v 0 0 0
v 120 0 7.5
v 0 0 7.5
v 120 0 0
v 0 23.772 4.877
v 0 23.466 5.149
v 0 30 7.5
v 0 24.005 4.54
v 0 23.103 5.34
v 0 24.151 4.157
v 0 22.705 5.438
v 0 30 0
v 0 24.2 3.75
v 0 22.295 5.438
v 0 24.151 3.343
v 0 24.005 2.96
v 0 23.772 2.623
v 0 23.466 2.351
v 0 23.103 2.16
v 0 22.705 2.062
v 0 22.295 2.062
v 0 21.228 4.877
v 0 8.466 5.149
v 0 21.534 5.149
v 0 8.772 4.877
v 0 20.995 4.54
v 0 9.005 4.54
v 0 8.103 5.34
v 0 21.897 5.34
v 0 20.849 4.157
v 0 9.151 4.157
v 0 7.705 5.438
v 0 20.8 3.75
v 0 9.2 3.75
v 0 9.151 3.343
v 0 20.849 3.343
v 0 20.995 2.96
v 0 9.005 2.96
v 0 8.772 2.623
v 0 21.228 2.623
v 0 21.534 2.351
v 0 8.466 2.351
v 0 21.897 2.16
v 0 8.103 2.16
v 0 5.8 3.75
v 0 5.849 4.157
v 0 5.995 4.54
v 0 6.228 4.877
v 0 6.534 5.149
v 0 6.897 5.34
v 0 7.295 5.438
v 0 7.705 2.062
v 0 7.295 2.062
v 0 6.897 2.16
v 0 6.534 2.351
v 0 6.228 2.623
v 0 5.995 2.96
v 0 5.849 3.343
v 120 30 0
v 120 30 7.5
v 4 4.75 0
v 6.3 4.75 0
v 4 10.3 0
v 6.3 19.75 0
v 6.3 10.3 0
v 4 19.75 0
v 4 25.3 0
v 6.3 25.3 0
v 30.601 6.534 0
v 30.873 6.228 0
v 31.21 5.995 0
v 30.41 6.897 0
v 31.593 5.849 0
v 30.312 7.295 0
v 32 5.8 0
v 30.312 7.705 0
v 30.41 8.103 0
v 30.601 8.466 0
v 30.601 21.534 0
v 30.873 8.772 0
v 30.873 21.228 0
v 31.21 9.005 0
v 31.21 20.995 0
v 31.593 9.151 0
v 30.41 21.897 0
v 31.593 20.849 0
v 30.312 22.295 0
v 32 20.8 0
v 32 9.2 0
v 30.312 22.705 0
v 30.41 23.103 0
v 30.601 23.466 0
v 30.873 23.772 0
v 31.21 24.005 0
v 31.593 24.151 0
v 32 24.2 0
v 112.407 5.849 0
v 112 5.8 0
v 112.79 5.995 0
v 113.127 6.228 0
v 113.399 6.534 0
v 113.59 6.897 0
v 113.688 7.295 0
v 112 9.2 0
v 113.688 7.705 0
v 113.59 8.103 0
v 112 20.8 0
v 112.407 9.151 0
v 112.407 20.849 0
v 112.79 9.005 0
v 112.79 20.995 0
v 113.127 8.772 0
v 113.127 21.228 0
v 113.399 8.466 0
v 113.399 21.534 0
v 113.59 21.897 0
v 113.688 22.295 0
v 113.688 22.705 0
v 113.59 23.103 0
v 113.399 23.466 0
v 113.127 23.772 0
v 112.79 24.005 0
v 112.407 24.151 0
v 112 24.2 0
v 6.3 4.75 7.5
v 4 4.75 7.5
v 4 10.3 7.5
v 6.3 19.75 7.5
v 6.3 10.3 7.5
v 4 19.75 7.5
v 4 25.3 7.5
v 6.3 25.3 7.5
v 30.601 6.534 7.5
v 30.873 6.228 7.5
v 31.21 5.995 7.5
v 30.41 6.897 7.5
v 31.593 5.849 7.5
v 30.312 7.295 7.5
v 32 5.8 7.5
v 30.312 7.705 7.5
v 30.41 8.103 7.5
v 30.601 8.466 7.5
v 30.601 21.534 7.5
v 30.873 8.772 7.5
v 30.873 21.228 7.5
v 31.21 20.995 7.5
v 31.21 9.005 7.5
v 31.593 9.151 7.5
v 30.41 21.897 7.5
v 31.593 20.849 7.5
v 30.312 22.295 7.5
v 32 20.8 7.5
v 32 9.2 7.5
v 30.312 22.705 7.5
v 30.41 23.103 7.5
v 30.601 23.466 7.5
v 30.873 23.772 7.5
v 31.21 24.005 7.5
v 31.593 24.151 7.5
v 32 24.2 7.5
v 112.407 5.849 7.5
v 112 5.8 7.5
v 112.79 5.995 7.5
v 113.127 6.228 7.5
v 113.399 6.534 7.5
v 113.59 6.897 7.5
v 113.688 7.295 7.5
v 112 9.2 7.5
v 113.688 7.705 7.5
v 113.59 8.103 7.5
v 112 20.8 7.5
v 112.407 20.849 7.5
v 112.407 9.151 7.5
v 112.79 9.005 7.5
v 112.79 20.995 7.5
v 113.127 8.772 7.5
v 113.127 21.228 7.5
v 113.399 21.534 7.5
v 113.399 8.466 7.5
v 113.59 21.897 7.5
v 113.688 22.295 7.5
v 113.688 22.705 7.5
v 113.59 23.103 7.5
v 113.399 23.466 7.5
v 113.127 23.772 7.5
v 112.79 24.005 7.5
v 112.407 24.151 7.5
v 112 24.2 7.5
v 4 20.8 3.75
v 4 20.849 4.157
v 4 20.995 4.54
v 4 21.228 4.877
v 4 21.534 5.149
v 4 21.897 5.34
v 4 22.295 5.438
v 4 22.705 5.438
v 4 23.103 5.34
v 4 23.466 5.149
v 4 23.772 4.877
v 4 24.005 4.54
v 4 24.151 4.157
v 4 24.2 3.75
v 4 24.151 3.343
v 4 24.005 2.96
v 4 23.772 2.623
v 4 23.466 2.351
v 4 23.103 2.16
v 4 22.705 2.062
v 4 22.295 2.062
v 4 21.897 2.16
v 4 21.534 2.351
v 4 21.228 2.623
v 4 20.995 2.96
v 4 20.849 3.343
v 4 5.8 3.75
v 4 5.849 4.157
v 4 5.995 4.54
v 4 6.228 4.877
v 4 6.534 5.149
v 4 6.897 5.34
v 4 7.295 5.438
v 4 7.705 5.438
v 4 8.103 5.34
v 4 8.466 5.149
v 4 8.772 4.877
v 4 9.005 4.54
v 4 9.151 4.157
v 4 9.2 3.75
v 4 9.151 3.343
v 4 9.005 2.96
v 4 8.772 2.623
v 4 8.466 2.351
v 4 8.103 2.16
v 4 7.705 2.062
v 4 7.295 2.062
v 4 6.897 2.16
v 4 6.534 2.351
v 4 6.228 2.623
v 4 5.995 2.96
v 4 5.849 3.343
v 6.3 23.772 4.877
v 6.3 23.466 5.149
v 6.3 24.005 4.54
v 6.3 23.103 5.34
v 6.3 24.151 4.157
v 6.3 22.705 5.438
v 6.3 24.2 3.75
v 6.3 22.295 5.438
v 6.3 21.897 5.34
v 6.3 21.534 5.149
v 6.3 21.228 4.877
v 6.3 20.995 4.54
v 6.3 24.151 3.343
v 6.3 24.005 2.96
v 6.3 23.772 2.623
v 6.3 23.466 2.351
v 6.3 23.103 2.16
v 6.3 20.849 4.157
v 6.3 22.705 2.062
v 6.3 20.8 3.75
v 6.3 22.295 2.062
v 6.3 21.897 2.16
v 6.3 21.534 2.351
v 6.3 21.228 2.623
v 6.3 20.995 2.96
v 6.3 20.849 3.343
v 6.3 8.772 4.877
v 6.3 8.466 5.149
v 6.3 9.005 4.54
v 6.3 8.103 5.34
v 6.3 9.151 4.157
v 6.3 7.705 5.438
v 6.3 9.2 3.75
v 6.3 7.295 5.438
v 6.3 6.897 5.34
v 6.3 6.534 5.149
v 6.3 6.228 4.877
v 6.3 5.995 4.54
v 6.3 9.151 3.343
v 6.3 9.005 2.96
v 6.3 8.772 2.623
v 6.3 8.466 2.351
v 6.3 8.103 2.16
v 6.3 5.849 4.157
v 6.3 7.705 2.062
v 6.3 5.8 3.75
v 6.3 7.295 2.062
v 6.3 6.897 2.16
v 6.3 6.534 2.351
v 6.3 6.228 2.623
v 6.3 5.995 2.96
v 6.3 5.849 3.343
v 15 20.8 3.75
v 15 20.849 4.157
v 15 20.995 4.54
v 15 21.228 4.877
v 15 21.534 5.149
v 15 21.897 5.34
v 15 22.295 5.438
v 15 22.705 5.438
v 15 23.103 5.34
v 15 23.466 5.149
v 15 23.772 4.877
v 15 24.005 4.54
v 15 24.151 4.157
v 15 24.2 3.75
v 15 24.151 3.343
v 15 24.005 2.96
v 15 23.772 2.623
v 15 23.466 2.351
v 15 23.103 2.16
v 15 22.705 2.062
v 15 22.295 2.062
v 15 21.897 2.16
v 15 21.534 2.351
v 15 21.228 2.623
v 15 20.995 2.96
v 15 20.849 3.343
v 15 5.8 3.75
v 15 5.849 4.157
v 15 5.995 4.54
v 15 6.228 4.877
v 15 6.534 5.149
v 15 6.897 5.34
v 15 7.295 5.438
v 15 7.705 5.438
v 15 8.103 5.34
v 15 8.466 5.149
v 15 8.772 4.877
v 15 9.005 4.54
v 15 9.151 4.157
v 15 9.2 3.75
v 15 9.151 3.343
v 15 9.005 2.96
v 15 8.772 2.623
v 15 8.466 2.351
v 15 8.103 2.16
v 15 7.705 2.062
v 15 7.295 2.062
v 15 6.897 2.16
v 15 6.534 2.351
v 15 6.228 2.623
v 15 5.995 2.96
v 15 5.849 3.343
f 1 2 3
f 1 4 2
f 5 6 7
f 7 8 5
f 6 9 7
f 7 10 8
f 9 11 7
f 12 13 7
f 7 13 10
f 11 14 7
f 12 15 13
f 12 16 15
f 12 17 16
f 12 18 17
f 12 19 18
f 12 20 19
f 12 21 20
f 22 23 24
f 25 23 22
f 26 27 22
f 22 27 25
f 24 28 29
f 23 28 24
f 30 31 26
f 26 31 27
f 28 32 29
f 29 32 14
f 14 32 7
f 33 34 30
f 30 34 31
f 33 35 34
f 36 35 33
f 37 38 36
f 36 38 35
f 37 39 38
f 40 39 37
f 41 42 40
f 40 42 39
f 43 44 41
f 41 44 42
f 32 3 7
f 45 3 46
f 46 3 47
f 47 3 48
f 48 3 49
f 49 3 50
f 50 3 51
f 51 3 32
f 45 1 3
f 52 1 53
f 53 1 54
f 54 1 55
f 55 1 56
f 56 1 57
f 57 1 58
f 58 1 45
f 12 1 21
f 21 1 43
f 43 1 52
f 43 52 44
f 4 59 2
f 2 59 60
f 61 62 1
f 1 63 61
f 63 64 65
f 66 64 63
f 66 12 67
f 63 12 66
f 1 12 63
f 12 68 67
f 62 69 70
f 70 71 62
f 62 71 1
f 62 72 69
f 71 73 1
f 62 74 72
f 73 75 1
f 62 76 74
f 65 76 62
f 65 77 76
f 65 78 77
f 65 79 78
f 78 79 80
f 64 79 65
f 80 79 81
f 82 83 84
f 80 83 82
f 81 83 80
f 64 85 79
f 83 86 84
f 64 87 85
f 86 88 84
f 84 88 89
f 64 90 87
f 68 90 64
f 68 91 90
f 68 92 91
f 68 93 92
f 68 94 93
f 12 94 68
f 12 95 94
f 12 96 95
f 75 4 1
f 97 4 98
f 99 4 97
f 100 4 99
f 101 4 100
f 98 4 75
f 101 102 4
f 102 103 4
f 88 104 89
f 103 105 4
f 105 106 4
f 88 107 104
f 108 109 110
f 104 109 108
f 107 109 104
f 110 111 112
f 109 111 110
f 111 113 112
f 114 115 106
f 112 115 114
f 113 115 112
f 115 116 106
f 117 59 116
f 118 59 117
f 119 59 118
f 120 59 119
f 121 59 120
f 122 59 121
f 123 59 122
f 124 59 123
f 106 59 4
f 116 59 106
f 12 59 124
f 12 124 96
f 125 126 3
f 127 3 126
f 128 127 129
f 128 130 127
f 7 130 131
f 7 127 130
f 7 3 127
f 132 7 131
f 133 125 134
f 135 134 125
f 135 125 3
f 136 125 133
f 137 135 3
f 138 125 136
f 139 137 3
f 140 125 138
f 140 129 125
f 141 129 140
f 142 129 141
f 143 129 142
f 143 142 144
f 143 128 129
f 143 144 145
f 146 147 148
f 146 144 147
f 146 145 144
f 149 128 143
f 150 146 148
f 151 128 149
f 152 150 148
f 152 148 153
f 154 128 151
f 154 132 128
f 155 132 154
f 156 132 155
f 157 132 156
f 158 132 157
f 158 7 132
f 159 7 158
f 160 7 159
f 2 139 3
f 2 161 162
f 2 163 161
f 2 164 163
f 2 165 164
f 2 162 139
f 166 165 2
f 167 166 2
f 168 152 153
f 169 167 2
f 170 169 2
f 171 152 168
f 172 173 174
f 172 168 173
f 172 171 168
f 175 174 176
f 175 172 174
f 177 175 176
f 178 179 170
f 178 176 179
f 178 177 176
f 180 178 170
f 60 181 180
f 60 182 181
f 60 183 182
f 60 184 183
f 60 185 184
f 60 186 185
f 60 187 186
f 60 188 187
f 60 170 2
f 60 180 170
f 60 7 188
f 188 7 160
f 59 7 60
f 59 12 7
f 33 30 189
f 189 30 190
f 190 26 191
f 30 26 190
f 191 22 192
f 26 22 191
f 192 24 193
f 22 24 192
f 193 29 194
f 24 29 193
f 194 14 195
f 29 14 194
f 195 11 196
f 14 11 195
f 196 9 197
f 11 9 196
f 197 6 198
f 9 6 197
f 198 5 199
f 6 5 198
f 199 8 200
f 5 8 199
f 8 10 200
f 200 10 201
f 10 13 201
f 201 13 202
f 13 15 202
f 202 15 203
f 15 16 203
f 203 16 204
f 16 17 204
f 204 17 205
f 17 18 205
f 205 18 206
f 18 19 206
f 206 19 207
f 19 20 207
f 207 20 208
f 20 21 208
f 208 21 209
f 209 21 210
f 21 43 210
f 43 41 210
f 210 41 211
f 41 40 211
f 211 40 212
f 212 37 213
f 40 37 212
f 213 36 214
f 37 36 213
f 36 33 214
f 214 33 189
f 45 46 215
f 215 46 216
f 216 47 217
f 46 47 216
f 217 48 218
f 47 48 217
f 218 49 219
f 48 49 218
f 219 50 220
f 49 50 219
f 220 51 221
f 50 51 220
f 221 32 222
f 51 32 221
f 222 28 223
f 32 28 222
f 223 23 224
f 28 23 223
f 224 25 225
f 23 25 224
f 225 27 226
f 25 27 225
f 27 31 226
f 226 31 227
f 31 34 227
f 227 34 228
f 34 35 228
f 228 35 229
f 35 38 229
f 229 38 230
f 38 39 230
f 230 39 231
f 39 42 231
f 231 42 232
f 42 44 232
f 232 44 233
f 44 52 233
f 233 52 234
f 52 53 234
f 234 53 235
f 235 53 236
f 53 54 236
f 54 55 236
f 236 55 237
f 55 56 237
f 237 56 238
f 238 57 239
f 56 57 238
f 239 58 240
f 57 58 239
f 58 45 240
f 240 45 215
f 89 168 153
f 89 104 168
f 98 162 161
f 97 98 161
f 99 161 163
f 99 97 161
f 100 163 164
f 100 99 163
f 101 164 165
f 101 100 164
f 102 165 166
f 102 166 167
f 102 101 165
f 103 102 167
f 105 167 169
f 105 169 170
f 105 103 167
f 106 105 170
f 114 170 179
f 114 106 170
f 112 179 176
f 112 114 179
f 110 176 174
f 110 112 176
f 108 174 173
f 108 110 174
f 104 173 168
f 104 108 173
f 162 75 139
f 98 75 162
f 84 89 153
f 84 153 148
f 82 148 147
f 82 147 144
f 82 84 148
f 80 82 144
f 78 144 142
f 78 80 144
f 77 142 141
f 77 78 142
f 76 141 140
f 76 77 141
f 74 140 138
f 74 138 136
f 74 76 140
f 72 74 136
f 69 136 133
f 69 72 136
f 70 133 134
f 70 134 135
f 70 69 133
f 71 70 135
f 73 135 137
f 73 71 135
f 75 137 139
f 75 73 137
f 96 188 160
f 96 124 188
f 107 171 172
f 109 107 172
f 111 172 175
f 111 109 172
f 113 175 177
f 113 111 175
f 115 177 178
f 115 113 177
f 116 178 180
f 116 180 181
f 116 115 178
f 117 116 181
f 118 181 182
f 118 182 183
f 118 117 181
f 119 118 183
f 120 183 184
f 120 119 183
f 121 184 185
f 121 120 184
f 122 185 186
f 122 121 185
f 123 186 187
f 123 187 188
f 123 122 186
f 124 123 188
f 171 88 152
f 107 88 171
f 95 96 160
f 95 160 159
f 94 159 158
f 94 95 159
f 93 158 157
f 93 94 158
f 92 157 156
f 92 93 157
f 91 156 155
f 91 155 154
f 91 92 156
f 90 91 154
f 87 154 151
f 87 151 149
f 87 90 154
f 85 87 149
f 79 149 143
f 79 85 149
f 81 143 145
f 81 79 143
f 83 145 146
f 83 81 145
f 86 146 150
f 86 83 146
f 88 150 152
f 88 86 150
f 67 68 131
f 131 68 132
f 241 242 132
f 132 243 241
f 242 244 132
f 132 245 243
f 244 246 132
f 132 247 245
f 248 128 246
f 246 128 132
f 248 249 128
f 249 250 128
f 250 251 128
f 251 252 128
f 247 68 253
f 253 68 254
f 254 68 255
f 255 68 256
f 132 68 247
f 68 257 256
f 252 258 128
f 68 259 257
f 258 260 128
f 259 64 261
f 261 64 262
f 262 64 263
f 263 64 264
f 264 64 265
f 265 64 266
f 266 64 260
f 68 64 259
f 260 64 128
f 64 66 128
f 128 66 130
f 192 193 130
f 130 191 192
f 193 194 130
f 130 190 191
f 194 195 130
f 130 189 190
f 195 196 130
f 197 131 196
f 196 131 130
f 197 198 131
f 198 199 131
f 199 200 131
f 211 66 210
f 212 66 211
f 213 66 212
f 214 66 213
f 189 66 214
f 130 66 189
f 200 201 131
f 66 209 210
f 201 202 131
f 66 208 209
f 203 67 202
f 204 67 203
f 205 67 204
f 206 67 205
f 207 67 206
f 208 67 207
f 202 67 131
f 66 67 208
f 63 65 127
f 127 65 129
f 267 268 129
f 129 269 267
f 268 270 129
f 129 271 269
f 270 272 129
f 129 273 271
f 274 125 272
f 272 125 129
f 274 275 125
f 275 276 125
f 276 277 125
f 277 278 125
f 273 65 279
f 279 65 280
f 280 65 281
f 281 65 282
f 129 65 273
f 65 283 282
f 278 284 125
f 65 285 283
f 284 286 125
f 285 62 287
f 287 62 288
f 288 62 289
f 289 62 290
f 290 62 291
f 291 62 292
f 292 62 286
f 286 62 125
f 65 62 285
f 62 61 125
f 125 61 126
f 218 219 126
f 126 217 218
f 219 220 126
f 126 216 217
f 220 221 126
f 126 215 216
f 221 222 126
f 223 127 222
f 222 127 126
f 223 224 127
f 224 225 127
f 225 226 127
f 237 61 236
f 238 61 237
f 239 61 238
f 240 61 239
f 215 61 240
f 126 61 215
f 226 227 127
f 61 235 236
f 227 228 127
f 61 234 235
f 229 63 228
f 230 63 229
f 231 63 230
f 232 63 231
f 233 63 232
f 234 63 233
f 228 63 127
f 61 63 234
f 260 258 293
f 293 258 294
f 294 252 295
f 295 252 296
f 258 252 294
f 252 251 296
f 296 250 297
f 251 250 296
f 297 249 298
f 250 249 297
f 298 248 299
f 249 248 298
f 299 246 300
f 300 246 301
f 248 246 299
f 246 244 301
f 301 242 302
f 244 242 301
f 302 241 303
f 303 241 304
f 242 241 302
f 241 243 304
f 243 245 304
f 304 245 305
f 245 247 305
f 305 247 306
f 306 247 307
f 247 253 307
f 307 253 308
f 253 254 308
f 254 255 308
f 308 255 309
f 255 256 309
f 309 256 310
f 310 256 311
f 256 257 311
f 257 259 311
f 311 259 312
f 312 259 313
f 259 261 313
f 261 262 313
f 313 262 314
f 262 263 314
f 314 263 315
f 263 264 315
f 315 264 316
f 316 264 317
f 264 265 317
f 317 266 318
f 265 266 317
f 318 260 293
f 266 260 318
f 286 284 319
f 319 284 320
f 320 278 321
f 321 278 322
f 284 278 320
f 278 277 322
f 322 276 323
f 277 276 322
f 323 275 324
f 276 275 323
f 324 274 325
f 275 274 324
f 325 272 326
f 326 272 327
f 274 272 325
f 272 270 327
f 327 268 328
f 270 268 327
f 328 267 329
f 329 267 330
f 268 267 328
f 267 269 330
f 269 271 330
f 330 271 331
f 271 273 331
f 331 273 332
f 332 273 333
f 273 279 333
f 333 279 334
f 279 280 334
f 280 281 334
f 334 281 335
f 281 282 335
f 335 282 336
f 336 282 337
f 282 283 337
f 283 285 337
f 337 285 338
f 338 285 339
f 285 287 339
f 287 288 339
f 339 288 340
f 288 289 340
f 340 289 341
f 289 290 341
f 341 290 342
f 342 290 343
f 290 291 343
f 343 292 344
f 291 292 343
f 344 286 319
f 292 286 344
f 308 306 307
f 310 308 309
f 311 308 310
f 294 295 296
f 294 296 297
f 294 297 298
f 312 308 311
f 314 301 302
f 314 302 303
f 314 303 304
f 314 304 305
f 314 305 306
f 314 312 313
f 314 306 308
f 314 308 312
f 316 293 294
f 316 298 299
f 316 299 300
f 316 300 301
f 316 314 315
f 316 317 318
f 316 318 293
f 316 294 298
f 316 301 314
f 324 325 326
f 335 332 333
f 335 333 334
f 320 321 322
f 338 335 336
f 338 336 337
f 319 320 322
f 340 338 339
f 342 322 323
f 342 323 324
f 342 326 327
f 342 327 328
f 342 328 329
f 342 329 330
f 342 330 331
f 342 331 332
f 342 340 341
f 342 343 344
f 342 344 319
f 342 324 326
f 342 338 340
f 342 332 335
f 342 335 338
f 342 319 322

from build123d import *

# Parameters (mm, degrees)
SKETCH_W     = 120
SKETCH_H     = 30
SKETCH_W_2   = 2.3
SKETCH_H_2   = 5.55
PAD_DEPTH    = 7.5
SKETCH001_R  = 1.7
POCKET_DEPTH = 15


with BuildPart() as part:
    # Sketch → Pad (new body)
    with BuildSketch(Plane.XY):
        with Locations((60, 15)):
            Rectangle(SKETCH_W, SKETCH_H)
        with Locations((5.15, 22.525)):
            Rectangle(SKETCH_W_2, SKETCH_H_2, mode=Mode.SUBTRACT)
        with Locations((5.15, 7.525)):
            Rectangle(SKETCH_W_2, SKETCH_H_2, mode=Mode.SUBTRACT)
        with BuildLine():
            ThreePointArc((32, 24.2), (30.3, 22.5), (32, 20.8))
            Line((32, 20.8), (112, 20.8))
            ThreePointArc((112, 20.8), (113.7, 22.5), (112, 24.2))
            Line((32, 24.2), (112, 24.2))
        make_face(mode=Mode.SUBTRACT)
        with BuildLine():
            ThreePointArc((32, 9.2), (30.3, 7.5), (32, 5.8))
            Line((32, 5.8), (112, 5.8))
            ThreePointArc((112, 5.8), (113.7, 7.5), (112, 9.2))
            Line((32, 9.2), (112, 9.2))
        make_face(mode=Mode.SUBTRACT)
    extrude(amount=PAD_DEPTH)

    # Sketch001 (on Face4 of Pad) → Pocket (cut)
    with BuildSketch(Plane(origin=(0, 0, 0), x_dir=(0, -1, 0), z_dir=(-1, 0, 0))):
        with Locations((-22.5, 3.75)):
            Circle(SKETCH001_R)
        with Locations((-7.5, 3.75)):
            Circle(SKETCH001_R)
    extrude(amount=-POCKET_DEPTH, mode=Mode.SUBTRACT)


solid = part.part
